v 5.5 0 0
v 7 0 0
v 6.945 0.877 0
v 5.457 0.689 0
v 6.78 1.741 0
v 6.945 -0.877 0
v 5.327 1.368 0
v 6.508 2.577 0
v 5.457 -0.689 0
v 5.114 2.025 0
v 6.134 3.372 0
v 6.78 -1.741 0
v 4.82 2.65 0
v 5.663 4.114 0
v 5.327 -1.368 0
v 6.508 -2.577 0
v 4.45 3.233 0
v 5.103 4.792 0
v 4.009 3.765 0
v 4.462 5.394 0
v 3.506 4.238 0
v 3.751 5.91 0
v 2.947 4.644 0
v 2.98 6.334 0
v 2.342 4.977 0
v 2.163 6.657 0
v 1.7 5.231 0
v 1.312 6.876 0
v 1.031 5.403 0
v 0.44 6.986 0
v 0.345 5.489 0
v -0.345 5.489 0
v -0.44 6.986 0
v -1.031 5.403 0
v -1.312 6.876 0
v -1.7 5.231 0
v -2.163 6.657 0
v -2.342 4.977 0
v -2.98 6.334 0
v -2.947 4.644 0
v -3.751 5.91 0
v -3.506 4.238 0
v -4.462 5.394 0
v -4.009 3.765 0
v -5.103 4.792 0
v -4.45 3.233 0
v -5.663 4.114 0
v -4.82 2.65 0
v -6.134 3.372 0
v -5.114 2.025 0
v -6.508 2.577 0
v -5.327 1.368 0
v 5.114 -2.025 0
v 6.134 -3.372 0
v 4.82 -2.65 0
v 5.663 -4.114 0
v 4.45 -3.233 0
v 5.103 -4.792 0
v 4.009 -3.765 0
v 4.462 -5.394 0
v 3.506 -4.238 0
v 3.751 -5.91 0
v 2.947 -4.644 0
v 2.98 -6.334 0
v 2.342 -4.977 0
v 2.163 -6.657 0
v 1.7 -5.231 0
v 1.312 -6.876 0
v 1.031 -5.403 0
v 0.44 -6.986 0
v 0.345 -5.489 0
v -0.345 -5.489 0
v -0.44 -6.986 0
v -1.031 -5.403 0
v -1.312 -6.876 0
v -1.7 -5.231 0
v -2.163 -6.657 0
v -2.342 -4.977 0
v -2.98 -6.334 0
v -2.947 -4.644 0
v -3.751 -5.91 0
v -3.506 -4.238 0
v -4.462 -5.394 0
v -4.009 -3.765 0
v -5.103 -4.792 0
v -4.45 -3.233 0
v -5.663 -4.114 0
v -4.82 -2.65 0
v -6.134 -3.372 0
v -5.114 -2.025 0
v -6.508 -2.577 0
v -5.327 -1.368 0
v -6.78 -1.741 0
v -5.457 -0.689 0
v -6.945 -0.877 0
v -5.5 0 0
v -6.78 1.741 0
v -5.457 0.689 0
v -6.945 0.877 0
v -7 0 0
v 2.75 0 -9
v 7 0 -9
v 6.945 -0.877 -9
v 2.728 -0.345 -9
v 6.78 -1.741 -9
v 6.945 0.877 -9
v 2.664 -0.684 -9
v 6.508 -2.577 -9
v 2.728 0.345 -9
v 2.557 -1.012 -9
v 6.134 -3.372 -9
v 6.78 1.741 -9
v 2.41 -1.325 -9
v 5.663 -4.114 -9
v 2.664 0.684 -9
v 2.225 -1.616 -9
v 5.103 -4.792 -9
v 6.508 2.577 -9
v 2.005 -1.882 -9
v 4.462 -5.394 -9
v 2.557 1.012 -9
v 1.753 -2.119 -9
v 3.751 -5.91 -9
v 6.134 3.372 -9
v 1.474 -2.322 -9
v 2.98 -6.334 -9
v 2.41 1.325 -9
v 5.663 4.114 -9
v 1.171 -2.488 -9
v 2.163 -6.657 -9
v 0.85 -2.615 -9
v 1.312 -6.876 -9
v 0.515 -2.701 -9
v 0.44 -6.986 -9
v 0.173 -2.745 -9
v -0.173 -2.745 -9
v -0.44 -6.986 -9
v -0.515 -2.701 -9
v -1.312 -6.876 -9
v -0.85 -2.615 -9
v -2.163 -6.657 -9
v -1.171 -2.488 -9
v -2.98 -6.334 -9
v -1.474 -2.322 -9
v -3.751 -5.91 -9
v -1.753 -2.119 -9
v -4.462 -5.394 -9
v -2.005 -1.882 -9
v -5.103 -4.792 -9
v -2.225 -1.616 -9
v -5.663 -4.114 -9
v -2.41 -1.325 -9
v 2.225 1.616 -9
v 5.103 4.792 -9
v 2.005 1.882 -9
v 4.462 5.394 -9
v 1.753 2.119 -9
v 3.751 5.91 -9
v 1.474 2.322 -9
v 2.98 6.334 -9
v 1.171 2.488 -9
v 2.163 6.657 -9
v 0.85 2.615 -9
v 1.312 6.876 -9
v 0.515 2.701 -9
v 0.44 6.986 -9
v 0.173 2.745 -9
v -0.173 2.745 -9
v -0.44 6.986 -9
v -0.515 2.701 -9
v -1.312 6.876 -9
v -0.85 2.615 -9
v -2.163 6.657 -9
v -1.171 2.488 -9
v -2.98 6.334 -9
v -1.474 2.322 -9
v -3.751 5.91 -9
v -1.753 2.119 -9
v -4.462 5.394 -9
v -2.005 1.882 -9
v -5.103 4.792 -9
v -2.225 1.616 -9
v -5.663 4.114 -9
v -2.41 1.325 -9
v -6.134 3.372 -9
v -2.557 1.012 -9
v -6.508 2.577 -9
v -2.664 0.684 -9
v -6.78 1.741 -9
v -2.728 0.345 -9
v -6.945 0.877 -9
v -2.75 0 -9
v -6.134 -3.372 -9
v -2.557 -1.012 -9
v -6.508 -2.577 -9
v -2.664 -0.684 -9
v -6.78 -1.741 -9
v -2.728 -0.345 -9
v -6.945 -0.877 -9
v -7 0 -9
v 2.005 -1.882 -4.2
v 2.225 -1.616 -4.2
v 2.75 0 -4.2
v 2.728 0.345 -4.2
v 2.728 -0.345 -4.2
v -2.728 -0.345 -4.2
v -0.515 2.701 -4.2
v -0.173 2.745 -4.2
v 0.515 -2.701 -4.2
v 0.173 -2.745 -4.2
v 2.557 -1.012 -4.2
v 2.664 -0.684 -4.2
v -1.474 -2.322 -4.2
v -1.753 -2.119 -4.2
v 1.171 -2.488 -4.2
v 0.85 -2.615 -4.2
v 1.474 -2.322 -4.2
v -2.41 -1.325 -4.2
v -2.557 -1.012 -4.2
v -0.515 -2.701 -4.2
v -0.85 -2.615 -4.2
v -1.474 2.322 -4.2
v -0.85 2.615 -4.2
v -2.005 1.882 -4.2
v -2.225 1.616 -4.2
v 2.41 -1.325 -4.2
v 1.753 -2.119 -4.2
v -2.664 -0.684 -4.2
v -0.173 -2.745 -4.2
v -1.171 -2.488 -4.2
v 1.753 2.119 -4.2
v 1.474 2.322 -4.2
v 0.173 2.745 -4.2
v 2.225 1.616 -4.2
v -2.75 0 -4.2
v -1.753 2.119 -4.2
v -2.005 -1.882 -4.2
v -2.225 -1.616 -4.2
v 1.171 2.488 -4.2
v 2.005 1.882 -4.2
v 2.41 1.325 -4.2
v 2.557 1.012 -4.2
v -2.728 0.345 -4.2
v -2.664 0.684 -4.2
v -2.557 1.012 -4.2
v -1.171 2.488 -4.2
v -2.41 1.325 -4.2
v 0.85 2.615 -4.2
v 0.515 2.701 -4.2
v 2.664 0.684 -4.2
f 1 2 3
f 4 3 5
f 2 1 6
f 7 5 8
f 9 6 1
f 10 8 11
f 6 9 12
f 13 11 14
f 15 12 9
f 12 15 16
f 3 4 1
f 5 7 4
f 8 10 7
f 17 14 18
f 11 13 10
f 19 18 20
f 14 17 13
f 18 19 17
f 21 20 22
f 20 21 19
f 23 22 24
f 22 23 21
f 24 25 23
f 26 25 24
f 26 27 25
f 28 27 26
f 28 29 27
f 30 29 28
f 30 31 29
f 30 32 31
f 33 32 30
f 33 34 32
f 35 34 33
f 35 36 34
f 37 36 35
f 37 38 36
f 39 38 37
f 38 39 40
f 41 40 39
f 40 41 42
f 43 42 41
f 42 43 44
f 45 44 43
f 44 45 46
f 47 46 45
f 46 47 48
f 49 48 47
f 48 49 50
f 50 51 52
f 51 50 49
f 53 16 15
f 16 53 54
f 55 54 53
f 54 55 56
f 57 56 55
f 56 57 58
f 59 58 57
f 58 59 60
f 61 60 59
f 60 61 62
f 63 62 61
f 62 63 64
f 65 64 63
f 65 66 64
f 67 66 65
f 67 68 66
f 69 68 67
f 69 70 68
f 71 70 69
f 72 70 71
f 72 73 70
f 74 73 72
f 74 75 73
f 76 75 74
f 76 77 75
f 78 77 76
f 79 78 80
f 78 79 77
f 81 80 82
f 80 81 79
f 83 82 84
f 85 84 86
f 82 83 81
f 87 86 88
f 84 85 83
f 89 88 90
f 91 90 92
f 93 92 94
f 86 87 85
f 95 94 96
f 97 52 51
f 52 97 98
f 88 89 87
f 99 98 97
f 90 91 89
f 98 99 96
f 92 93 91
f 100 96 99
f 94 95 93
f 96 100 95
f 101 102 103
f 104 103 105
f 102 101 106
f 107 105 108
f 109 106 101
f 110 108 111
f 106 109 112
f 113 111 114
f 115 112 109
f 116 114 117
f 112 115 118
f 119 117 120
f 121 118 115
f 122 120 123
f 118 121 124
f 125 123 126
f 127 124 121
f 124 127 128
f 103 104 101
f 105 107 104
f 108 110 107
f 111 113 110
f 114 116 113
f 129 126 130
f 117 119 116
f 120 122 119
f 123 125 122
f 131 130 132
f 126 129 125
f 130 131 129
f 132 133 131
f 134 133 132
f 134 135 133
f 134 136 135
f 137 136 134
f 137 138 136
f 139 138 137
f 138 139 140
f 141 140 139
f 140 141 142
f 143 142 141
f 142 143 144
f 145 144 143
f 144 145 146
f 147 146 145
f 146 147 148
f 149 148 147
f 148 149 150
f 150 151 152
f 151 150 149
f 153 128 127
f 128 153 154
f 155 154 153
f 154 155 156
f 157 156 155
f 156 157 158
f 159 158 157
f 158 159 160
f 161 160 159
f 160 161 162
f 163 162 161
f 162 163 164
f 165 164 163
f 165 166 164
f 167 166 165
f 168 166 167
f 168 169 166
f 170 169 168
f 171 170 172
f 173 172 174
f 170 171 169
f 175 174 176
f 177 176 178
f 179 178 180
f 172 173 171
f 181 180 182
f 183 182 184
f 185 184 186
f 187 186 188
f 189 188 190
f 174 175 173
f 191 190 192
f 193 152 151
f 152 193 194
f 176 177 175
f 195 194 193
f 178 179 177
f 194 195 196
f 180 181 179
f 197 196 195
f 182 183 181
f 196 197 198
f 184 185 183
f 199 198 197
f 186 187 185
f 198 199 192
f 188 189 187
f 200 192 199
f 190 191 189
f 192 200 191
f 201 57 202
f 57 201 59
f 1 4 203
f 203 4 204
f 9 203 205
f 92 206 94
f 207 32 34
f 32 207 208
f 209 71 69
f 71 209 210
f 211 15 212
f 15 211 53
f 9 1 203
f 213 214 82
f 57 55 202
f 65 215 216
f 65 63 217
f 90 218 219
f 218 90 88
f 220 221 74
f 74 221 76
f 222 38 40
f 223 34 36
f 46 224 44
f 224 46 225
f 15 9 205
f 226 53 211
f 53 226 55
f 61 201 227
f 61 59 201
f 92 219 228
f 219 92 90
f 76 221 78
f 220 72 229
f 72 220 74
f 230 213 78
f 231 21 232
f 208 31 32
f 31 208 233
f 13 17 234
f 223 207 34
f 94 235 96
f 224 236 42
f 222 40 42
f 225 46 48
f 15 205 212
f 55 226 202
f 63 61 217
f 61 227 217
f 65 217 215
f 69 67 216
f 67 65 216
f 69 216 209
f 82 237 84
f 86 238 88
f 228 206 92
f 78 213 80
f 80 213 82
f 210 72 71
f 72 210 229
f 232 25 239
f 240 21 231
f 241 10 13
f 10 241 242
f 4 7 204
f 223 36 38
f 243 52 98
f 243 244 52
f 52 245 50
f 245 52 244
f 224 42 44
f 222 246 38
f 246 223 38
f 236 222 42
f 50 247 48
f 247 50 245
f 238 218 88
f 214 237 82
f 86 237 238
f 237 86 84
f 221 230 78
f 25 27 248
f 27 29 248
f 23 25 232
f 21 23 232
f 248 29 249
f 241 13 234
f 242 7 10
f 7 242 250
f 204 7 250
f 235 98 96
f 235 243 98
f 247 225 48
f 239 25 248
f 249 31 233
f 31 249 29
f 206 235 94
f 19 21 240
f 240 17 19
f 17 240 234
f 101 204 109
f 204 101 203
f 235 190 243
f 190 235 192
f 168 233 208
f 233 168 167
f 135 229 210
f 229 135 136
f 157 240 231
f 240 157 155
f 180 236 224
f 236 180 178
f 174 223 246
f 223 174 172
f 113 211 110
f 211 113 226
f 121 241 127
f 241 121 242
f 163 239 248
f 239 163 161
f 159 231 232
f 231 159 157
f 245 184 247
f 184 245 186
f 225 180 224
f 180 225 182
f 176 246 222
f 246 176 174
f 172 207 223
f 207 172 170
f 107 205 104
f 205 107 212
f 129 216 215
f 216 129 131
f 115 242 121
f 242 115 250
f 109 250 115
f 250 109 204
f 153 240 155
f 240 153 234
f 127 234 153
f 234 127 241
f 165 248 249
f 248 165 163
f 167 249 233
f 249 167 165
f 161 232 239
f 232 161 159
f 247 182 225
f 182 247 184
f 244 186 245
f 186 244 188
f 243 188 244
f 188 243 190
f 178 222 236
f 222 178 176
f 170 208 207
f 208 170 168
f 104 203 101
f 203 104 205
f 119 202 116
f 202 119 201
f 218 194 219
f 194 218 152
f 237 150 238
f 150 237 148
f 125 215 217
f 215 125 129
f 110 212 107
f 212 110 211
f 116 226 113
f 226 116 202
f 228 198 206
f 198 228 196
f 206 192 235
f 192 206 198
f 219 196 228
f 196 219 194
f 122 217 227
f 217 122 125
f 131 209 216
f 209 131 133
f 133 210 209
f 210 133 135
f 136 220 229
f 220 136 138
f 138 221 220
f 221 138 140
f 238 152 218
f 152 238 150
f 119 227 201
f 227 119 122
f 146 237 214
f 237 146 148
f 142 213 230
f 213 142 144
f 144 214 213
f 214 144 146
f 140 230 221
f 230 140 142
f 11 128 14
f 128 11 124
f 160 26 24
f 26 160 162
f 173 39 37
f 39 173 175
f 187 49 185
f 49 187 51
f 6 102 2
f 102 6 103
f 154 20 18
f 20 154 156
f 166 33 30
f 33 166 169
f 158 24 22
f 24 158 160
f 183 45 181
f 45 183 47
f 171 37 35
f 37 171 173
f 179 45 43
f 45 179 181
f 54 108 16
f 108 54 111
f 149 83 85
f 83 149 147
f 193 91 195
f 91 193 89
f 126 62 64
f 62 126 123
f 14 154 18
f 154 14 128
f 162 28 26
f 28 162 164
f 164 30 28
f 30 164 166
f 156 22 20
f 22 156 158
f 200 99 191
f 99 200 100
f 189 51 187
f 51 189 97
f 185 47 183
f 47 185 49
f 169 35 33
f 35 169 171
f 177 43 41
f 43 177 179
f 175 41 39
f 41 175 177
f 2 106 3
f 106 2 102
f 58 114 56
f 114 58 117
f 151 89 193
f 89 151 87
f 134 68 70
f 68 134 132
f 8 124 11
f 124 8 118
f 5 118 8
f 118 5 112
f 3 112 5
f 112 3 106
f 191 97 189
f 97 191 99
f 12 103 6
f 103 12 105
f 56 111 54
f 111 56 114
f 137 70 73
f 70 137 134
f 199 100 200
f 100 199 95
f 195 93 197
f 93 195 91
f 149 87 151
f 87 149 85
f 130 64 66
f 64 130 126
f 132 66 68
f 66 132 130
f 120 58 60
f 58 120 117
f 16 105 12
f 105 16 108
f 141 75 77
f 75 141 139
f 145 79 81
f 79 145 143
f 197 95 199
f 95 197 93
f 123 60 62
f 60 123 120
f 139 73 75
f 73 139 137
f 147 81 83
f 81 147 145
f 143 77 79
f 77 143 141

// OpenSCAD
$fn = 50;


difference() {
	union() {
		translate(v = [0, 0, -9.0000000000]) {
			cylinder(h = 9, r = 7.0000000000);
		}
	}
	union() {
		translate(v = [0, 0, 0]) {
			rotate(a = [0, 0, 0]) {
				difference() {
					union() {
						#translate(v = [0, 0, -9.0000000000]) {
							cylinder(h = 9, r = 2.2500000000);
						}
						#translate(v = [0, 0, -4.2000000000]) {
							cylinder(h = 4.2000000000, r = 7.0000000000, r1 = 2.7500000000, r2 = 5.5000000000);
						}
						#translate(v = [0, 0, -9.0000000000]) {
							cylinder(h = 9, r = 2.7500000000);
						}
						#translate(v = [0, 0, -9.0000000000]) {
							cylinder(h = 9, r = 2.2500000000);
						}
					}
					union();
				}
			}
		}
	}
}
